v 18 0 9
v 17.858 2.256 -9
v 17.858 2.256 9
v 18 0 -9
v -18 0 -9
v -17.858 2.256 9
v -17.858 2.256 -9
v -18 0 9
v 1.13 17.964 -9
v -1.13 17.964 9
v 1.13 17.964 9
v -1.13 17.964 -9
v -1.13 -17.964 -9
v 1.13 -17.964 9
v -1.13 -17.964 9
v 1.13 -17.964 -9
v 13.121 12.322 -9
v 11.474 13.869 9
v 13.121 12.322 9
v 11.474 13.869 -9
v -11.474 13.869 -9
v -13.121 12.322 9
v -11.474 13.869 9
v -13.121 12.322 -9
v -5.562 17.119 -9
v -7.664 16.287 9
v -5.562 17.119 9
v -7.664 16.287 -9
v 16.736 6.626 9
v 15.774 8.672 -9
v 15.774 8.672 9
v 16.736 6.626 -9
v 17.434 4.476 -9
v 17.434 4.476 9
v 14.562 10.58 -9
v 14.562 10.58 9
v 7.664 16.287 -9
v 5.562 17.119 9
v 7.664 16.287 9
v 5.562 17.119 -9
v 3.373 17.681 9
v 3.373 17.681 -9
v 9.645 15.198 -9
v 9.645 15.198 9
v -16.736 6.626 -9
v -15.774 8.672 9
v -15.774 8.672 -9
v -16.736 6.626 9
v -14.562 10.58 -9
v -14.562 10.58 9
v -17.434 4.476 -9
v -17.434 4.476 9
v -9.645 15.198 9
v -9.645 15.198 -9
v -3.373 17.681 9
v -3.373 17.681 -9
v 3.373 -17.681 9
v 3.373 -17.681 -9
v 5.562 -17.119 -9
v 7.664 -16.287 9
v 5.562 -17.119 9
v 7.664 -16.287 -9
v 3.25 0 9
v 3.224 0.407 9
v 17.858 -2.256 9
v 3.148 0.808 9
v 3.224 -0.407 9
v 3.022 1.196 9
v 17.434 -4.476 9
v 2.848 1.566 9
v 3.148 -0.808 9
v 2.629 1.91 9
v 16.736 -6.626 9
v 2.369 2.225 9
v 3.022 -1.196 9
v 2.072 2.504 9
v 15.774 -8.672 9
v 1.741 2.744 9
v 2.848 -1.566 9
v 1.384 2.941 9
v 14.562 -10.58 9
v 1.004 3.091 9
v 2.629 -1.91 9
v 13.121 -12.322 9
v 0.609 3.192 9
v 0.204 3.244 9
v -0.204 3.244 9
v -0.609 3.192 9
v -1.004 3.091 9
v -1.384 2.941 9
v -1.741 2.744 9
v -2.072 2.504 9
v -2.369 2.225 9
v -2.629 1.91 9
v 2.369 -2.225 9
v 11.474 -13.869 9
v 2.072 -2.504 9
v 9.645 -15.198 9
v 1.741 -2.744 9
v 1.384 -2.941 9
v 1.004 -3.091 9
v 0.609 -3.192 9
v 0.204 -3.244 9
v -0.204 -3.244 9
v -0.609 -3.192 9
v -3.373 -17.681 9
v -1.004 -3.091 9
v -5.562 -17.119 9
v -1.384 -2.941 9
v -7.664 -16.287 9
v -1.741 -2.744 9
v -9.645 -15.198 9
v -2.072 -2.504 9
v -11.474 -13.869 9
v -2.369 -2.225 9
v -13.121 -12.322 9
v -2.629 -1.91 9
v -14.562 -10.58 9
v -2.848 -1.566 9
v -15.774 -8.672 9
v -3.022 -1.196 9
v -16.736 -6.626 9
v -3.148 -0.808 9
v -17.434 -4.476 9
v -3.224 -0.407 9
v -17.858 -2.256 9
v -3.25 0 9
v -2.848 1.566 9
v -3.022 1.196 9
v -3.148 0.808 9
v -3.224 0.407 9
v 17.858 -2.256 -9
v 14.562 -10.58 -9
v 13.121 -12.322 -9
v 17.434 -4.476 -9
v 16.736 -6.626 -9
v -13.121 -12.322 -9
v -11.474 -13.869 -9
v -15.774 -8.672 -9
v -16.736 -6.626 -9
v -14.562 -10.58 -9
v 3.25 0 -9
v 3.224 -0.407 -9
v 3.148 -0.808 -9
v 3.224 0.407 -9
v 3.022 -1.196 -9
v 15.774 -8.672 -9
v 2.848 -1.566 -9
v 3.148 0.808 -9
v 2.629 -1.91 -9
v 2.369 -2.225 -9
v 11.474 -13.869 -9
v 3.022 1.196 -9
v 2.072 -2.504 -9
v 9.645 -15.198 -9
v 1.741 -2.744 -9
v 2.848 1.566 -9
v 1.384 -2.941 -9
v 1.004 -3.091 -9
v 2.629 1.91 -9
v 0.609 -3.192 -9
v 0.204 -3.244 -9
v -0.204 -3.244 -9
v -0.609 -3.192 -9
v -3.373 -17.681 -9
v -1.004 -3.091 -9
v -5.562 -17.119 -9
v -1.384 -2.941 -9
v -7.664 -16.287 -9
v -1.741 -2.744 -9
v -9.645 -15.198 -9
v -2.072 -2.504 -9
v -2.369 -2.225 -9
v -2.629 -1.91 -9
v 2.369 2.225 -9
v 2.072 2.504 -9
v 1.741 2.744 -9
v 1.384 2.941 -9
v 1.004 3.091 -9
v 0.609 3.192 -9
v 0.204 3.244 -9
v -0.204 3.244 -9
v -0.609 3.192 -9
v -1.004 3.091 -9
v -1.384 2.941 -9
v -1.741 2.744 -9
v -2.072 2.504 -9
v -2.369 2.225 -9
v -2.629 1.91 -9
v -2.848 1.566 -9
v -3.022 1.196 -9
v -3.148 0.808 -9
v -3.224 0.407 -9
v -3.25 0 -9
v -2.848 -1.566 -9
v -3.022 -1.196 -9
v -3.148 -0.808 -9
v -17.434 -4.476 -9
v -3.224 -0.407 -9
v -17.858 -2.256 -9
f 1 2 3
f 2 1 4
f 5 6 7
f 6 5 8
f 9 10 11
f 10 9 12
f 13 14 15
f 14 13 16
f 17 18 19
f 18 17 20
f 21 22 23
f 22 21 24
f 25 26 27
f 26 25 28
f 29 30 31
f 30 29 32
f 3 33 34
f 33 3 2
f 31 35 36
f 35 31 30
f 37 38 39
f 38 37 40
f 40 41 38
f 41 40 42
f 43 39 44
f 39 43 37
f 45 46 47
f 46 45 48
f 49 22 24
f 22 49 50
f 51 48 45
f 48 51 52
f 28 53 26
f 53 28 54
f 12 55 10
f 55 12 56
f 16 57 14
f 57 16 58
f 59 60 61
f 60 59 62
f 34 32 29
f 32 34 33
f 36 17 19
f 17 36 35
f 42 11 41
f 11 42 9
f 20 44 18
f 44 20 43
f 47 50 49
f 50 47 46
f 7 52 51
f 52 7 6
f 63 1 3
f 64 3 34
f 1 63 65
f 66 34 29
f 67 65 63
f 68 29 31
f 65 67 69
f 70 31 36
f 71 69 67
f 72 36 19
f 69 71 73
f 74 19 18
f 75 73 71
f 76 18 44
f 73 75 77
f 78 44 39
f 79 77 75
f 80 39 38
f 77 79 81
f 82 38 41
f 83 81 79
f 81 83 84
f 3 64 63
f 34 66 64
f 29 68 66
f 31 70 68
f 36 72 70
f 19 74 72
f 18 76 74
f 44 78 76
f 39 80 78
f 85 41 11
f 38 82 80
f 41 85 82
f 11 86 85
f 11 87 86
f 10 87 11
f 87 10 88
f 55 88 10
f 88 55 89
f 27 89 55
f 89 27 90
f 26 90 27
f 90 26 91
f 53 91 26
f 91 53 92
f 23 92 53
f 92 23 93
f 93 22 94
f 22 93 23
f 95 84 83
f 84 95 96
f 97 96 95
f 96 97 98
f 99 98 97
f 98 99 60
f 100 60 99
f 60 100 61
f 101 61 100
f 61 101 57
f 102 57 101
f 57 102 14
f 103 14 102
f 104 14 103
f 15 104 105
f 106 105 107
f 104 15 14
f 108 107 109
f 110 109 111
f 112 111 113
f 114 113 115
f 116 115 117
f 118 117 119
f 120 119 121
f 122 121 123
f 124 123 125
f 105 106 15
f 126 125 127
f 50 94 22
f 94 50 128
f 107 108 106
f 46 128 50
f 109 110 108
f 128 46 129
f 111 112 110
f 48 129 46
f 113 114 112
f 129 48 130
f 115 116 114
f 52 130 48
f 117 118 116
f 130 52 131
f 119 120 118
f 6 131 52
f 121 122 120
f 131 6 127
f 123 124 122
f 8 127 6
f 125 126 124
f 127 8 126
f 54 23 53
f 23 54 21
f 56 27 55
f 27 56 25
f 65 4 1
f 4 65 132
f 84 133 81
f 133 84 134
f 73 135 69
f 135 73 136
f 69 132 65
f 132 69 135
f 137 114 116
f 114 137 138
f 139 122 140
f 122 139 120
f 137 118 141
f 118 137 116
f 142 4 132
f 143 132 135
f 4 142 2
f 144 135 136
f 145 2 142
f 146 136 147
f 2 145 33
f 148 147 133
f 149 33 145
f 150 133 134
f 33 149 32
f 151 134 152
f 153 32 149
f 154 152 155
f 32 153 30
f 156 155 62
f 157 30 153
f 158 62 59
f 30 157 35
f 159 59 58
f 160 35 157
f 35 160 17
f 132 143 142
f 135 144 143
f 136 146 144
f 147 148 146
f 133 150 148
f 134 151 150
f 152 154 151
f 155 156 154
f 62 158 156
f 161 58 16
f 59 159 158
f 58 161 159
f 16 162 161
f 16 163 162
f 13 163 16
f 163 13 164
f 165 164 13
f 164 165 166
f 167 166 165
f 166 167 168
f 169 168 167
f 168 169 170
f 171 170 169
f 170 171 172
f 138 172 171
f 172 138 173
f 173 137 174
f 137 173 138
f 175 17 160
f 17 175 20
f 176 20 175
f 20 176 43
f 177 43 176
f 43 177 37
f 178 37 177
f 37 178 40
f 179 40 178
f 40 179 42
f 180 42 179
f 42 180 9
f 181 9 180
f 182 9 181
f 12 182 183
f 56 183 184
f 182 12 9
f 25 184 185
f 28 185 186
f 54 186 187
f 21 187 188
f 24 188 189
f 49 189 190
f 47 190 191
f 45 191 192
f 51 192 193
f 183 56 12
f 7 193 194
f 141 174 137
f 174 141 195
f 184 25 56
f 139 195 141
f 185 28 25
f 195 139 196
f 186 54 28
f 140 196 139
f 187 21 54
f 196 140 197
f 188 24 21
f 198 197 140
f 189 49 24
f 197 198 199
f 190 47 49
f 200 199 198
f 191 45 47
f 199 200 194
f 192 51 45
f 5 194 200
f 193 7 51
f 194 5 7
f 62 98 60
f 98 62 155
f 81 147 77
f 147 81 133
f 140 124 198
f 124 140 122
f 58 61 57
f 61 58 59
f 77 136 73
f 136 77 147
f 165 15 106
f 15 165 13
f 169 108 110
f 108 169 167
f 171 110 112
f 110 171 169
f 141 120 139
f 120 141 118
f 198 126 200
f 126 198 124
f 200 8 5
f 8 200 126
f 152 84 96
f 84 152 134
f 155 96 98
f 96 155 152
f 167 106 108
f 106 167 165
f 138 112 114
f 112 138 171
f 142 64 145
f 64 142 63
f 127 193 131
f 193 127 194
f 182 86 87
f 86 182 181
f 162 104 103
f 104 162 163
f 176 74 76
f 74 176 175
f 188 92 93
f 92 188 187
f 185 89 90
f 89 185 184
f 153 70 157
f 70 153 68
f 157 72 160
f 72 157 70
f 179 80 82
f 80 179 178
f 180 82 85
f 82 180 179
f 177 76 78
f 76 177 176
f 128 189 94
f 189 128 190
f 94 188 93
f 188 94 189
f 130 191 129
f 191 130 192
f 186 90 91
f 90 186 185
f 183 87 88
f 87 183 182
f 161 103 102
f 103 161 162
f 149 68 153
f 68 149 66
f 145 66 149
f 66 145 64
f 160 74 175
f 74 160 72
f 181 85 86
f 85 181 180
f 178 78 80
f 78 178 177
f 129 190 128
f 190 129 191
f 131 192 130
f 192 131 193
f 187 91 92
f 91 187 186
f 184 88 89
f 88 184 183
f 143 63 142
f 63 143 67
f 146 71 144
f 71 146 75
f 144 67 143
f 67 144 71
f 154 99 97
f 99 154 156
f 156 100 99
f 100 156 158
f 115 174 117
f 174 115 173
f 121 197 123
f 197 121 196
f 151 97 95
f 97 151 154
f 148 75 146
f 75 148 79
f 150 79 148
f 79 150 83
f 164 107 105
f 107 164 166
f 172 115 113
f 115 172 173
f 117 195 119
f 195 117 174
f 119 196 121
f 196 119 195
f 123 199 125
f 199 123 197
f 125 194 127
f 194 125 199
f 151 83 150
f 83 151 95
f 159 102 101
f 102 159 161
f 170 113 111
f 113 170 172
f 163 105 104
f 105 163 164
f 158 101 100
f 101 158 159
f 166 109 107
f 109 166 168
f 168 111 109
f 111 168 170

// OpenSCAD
$fn = 50;


difference() {
	union() {
		translate(v = [0, 0, -9.0000000000]) {
			cylinder(h = 18, r = 18.0000000000);
		}
	}
	union() {
		translate(v = [0, 0, -100.0000000000]) {
			cylinder(h = 200, r = 3.2500000000);
		}
	}
}
